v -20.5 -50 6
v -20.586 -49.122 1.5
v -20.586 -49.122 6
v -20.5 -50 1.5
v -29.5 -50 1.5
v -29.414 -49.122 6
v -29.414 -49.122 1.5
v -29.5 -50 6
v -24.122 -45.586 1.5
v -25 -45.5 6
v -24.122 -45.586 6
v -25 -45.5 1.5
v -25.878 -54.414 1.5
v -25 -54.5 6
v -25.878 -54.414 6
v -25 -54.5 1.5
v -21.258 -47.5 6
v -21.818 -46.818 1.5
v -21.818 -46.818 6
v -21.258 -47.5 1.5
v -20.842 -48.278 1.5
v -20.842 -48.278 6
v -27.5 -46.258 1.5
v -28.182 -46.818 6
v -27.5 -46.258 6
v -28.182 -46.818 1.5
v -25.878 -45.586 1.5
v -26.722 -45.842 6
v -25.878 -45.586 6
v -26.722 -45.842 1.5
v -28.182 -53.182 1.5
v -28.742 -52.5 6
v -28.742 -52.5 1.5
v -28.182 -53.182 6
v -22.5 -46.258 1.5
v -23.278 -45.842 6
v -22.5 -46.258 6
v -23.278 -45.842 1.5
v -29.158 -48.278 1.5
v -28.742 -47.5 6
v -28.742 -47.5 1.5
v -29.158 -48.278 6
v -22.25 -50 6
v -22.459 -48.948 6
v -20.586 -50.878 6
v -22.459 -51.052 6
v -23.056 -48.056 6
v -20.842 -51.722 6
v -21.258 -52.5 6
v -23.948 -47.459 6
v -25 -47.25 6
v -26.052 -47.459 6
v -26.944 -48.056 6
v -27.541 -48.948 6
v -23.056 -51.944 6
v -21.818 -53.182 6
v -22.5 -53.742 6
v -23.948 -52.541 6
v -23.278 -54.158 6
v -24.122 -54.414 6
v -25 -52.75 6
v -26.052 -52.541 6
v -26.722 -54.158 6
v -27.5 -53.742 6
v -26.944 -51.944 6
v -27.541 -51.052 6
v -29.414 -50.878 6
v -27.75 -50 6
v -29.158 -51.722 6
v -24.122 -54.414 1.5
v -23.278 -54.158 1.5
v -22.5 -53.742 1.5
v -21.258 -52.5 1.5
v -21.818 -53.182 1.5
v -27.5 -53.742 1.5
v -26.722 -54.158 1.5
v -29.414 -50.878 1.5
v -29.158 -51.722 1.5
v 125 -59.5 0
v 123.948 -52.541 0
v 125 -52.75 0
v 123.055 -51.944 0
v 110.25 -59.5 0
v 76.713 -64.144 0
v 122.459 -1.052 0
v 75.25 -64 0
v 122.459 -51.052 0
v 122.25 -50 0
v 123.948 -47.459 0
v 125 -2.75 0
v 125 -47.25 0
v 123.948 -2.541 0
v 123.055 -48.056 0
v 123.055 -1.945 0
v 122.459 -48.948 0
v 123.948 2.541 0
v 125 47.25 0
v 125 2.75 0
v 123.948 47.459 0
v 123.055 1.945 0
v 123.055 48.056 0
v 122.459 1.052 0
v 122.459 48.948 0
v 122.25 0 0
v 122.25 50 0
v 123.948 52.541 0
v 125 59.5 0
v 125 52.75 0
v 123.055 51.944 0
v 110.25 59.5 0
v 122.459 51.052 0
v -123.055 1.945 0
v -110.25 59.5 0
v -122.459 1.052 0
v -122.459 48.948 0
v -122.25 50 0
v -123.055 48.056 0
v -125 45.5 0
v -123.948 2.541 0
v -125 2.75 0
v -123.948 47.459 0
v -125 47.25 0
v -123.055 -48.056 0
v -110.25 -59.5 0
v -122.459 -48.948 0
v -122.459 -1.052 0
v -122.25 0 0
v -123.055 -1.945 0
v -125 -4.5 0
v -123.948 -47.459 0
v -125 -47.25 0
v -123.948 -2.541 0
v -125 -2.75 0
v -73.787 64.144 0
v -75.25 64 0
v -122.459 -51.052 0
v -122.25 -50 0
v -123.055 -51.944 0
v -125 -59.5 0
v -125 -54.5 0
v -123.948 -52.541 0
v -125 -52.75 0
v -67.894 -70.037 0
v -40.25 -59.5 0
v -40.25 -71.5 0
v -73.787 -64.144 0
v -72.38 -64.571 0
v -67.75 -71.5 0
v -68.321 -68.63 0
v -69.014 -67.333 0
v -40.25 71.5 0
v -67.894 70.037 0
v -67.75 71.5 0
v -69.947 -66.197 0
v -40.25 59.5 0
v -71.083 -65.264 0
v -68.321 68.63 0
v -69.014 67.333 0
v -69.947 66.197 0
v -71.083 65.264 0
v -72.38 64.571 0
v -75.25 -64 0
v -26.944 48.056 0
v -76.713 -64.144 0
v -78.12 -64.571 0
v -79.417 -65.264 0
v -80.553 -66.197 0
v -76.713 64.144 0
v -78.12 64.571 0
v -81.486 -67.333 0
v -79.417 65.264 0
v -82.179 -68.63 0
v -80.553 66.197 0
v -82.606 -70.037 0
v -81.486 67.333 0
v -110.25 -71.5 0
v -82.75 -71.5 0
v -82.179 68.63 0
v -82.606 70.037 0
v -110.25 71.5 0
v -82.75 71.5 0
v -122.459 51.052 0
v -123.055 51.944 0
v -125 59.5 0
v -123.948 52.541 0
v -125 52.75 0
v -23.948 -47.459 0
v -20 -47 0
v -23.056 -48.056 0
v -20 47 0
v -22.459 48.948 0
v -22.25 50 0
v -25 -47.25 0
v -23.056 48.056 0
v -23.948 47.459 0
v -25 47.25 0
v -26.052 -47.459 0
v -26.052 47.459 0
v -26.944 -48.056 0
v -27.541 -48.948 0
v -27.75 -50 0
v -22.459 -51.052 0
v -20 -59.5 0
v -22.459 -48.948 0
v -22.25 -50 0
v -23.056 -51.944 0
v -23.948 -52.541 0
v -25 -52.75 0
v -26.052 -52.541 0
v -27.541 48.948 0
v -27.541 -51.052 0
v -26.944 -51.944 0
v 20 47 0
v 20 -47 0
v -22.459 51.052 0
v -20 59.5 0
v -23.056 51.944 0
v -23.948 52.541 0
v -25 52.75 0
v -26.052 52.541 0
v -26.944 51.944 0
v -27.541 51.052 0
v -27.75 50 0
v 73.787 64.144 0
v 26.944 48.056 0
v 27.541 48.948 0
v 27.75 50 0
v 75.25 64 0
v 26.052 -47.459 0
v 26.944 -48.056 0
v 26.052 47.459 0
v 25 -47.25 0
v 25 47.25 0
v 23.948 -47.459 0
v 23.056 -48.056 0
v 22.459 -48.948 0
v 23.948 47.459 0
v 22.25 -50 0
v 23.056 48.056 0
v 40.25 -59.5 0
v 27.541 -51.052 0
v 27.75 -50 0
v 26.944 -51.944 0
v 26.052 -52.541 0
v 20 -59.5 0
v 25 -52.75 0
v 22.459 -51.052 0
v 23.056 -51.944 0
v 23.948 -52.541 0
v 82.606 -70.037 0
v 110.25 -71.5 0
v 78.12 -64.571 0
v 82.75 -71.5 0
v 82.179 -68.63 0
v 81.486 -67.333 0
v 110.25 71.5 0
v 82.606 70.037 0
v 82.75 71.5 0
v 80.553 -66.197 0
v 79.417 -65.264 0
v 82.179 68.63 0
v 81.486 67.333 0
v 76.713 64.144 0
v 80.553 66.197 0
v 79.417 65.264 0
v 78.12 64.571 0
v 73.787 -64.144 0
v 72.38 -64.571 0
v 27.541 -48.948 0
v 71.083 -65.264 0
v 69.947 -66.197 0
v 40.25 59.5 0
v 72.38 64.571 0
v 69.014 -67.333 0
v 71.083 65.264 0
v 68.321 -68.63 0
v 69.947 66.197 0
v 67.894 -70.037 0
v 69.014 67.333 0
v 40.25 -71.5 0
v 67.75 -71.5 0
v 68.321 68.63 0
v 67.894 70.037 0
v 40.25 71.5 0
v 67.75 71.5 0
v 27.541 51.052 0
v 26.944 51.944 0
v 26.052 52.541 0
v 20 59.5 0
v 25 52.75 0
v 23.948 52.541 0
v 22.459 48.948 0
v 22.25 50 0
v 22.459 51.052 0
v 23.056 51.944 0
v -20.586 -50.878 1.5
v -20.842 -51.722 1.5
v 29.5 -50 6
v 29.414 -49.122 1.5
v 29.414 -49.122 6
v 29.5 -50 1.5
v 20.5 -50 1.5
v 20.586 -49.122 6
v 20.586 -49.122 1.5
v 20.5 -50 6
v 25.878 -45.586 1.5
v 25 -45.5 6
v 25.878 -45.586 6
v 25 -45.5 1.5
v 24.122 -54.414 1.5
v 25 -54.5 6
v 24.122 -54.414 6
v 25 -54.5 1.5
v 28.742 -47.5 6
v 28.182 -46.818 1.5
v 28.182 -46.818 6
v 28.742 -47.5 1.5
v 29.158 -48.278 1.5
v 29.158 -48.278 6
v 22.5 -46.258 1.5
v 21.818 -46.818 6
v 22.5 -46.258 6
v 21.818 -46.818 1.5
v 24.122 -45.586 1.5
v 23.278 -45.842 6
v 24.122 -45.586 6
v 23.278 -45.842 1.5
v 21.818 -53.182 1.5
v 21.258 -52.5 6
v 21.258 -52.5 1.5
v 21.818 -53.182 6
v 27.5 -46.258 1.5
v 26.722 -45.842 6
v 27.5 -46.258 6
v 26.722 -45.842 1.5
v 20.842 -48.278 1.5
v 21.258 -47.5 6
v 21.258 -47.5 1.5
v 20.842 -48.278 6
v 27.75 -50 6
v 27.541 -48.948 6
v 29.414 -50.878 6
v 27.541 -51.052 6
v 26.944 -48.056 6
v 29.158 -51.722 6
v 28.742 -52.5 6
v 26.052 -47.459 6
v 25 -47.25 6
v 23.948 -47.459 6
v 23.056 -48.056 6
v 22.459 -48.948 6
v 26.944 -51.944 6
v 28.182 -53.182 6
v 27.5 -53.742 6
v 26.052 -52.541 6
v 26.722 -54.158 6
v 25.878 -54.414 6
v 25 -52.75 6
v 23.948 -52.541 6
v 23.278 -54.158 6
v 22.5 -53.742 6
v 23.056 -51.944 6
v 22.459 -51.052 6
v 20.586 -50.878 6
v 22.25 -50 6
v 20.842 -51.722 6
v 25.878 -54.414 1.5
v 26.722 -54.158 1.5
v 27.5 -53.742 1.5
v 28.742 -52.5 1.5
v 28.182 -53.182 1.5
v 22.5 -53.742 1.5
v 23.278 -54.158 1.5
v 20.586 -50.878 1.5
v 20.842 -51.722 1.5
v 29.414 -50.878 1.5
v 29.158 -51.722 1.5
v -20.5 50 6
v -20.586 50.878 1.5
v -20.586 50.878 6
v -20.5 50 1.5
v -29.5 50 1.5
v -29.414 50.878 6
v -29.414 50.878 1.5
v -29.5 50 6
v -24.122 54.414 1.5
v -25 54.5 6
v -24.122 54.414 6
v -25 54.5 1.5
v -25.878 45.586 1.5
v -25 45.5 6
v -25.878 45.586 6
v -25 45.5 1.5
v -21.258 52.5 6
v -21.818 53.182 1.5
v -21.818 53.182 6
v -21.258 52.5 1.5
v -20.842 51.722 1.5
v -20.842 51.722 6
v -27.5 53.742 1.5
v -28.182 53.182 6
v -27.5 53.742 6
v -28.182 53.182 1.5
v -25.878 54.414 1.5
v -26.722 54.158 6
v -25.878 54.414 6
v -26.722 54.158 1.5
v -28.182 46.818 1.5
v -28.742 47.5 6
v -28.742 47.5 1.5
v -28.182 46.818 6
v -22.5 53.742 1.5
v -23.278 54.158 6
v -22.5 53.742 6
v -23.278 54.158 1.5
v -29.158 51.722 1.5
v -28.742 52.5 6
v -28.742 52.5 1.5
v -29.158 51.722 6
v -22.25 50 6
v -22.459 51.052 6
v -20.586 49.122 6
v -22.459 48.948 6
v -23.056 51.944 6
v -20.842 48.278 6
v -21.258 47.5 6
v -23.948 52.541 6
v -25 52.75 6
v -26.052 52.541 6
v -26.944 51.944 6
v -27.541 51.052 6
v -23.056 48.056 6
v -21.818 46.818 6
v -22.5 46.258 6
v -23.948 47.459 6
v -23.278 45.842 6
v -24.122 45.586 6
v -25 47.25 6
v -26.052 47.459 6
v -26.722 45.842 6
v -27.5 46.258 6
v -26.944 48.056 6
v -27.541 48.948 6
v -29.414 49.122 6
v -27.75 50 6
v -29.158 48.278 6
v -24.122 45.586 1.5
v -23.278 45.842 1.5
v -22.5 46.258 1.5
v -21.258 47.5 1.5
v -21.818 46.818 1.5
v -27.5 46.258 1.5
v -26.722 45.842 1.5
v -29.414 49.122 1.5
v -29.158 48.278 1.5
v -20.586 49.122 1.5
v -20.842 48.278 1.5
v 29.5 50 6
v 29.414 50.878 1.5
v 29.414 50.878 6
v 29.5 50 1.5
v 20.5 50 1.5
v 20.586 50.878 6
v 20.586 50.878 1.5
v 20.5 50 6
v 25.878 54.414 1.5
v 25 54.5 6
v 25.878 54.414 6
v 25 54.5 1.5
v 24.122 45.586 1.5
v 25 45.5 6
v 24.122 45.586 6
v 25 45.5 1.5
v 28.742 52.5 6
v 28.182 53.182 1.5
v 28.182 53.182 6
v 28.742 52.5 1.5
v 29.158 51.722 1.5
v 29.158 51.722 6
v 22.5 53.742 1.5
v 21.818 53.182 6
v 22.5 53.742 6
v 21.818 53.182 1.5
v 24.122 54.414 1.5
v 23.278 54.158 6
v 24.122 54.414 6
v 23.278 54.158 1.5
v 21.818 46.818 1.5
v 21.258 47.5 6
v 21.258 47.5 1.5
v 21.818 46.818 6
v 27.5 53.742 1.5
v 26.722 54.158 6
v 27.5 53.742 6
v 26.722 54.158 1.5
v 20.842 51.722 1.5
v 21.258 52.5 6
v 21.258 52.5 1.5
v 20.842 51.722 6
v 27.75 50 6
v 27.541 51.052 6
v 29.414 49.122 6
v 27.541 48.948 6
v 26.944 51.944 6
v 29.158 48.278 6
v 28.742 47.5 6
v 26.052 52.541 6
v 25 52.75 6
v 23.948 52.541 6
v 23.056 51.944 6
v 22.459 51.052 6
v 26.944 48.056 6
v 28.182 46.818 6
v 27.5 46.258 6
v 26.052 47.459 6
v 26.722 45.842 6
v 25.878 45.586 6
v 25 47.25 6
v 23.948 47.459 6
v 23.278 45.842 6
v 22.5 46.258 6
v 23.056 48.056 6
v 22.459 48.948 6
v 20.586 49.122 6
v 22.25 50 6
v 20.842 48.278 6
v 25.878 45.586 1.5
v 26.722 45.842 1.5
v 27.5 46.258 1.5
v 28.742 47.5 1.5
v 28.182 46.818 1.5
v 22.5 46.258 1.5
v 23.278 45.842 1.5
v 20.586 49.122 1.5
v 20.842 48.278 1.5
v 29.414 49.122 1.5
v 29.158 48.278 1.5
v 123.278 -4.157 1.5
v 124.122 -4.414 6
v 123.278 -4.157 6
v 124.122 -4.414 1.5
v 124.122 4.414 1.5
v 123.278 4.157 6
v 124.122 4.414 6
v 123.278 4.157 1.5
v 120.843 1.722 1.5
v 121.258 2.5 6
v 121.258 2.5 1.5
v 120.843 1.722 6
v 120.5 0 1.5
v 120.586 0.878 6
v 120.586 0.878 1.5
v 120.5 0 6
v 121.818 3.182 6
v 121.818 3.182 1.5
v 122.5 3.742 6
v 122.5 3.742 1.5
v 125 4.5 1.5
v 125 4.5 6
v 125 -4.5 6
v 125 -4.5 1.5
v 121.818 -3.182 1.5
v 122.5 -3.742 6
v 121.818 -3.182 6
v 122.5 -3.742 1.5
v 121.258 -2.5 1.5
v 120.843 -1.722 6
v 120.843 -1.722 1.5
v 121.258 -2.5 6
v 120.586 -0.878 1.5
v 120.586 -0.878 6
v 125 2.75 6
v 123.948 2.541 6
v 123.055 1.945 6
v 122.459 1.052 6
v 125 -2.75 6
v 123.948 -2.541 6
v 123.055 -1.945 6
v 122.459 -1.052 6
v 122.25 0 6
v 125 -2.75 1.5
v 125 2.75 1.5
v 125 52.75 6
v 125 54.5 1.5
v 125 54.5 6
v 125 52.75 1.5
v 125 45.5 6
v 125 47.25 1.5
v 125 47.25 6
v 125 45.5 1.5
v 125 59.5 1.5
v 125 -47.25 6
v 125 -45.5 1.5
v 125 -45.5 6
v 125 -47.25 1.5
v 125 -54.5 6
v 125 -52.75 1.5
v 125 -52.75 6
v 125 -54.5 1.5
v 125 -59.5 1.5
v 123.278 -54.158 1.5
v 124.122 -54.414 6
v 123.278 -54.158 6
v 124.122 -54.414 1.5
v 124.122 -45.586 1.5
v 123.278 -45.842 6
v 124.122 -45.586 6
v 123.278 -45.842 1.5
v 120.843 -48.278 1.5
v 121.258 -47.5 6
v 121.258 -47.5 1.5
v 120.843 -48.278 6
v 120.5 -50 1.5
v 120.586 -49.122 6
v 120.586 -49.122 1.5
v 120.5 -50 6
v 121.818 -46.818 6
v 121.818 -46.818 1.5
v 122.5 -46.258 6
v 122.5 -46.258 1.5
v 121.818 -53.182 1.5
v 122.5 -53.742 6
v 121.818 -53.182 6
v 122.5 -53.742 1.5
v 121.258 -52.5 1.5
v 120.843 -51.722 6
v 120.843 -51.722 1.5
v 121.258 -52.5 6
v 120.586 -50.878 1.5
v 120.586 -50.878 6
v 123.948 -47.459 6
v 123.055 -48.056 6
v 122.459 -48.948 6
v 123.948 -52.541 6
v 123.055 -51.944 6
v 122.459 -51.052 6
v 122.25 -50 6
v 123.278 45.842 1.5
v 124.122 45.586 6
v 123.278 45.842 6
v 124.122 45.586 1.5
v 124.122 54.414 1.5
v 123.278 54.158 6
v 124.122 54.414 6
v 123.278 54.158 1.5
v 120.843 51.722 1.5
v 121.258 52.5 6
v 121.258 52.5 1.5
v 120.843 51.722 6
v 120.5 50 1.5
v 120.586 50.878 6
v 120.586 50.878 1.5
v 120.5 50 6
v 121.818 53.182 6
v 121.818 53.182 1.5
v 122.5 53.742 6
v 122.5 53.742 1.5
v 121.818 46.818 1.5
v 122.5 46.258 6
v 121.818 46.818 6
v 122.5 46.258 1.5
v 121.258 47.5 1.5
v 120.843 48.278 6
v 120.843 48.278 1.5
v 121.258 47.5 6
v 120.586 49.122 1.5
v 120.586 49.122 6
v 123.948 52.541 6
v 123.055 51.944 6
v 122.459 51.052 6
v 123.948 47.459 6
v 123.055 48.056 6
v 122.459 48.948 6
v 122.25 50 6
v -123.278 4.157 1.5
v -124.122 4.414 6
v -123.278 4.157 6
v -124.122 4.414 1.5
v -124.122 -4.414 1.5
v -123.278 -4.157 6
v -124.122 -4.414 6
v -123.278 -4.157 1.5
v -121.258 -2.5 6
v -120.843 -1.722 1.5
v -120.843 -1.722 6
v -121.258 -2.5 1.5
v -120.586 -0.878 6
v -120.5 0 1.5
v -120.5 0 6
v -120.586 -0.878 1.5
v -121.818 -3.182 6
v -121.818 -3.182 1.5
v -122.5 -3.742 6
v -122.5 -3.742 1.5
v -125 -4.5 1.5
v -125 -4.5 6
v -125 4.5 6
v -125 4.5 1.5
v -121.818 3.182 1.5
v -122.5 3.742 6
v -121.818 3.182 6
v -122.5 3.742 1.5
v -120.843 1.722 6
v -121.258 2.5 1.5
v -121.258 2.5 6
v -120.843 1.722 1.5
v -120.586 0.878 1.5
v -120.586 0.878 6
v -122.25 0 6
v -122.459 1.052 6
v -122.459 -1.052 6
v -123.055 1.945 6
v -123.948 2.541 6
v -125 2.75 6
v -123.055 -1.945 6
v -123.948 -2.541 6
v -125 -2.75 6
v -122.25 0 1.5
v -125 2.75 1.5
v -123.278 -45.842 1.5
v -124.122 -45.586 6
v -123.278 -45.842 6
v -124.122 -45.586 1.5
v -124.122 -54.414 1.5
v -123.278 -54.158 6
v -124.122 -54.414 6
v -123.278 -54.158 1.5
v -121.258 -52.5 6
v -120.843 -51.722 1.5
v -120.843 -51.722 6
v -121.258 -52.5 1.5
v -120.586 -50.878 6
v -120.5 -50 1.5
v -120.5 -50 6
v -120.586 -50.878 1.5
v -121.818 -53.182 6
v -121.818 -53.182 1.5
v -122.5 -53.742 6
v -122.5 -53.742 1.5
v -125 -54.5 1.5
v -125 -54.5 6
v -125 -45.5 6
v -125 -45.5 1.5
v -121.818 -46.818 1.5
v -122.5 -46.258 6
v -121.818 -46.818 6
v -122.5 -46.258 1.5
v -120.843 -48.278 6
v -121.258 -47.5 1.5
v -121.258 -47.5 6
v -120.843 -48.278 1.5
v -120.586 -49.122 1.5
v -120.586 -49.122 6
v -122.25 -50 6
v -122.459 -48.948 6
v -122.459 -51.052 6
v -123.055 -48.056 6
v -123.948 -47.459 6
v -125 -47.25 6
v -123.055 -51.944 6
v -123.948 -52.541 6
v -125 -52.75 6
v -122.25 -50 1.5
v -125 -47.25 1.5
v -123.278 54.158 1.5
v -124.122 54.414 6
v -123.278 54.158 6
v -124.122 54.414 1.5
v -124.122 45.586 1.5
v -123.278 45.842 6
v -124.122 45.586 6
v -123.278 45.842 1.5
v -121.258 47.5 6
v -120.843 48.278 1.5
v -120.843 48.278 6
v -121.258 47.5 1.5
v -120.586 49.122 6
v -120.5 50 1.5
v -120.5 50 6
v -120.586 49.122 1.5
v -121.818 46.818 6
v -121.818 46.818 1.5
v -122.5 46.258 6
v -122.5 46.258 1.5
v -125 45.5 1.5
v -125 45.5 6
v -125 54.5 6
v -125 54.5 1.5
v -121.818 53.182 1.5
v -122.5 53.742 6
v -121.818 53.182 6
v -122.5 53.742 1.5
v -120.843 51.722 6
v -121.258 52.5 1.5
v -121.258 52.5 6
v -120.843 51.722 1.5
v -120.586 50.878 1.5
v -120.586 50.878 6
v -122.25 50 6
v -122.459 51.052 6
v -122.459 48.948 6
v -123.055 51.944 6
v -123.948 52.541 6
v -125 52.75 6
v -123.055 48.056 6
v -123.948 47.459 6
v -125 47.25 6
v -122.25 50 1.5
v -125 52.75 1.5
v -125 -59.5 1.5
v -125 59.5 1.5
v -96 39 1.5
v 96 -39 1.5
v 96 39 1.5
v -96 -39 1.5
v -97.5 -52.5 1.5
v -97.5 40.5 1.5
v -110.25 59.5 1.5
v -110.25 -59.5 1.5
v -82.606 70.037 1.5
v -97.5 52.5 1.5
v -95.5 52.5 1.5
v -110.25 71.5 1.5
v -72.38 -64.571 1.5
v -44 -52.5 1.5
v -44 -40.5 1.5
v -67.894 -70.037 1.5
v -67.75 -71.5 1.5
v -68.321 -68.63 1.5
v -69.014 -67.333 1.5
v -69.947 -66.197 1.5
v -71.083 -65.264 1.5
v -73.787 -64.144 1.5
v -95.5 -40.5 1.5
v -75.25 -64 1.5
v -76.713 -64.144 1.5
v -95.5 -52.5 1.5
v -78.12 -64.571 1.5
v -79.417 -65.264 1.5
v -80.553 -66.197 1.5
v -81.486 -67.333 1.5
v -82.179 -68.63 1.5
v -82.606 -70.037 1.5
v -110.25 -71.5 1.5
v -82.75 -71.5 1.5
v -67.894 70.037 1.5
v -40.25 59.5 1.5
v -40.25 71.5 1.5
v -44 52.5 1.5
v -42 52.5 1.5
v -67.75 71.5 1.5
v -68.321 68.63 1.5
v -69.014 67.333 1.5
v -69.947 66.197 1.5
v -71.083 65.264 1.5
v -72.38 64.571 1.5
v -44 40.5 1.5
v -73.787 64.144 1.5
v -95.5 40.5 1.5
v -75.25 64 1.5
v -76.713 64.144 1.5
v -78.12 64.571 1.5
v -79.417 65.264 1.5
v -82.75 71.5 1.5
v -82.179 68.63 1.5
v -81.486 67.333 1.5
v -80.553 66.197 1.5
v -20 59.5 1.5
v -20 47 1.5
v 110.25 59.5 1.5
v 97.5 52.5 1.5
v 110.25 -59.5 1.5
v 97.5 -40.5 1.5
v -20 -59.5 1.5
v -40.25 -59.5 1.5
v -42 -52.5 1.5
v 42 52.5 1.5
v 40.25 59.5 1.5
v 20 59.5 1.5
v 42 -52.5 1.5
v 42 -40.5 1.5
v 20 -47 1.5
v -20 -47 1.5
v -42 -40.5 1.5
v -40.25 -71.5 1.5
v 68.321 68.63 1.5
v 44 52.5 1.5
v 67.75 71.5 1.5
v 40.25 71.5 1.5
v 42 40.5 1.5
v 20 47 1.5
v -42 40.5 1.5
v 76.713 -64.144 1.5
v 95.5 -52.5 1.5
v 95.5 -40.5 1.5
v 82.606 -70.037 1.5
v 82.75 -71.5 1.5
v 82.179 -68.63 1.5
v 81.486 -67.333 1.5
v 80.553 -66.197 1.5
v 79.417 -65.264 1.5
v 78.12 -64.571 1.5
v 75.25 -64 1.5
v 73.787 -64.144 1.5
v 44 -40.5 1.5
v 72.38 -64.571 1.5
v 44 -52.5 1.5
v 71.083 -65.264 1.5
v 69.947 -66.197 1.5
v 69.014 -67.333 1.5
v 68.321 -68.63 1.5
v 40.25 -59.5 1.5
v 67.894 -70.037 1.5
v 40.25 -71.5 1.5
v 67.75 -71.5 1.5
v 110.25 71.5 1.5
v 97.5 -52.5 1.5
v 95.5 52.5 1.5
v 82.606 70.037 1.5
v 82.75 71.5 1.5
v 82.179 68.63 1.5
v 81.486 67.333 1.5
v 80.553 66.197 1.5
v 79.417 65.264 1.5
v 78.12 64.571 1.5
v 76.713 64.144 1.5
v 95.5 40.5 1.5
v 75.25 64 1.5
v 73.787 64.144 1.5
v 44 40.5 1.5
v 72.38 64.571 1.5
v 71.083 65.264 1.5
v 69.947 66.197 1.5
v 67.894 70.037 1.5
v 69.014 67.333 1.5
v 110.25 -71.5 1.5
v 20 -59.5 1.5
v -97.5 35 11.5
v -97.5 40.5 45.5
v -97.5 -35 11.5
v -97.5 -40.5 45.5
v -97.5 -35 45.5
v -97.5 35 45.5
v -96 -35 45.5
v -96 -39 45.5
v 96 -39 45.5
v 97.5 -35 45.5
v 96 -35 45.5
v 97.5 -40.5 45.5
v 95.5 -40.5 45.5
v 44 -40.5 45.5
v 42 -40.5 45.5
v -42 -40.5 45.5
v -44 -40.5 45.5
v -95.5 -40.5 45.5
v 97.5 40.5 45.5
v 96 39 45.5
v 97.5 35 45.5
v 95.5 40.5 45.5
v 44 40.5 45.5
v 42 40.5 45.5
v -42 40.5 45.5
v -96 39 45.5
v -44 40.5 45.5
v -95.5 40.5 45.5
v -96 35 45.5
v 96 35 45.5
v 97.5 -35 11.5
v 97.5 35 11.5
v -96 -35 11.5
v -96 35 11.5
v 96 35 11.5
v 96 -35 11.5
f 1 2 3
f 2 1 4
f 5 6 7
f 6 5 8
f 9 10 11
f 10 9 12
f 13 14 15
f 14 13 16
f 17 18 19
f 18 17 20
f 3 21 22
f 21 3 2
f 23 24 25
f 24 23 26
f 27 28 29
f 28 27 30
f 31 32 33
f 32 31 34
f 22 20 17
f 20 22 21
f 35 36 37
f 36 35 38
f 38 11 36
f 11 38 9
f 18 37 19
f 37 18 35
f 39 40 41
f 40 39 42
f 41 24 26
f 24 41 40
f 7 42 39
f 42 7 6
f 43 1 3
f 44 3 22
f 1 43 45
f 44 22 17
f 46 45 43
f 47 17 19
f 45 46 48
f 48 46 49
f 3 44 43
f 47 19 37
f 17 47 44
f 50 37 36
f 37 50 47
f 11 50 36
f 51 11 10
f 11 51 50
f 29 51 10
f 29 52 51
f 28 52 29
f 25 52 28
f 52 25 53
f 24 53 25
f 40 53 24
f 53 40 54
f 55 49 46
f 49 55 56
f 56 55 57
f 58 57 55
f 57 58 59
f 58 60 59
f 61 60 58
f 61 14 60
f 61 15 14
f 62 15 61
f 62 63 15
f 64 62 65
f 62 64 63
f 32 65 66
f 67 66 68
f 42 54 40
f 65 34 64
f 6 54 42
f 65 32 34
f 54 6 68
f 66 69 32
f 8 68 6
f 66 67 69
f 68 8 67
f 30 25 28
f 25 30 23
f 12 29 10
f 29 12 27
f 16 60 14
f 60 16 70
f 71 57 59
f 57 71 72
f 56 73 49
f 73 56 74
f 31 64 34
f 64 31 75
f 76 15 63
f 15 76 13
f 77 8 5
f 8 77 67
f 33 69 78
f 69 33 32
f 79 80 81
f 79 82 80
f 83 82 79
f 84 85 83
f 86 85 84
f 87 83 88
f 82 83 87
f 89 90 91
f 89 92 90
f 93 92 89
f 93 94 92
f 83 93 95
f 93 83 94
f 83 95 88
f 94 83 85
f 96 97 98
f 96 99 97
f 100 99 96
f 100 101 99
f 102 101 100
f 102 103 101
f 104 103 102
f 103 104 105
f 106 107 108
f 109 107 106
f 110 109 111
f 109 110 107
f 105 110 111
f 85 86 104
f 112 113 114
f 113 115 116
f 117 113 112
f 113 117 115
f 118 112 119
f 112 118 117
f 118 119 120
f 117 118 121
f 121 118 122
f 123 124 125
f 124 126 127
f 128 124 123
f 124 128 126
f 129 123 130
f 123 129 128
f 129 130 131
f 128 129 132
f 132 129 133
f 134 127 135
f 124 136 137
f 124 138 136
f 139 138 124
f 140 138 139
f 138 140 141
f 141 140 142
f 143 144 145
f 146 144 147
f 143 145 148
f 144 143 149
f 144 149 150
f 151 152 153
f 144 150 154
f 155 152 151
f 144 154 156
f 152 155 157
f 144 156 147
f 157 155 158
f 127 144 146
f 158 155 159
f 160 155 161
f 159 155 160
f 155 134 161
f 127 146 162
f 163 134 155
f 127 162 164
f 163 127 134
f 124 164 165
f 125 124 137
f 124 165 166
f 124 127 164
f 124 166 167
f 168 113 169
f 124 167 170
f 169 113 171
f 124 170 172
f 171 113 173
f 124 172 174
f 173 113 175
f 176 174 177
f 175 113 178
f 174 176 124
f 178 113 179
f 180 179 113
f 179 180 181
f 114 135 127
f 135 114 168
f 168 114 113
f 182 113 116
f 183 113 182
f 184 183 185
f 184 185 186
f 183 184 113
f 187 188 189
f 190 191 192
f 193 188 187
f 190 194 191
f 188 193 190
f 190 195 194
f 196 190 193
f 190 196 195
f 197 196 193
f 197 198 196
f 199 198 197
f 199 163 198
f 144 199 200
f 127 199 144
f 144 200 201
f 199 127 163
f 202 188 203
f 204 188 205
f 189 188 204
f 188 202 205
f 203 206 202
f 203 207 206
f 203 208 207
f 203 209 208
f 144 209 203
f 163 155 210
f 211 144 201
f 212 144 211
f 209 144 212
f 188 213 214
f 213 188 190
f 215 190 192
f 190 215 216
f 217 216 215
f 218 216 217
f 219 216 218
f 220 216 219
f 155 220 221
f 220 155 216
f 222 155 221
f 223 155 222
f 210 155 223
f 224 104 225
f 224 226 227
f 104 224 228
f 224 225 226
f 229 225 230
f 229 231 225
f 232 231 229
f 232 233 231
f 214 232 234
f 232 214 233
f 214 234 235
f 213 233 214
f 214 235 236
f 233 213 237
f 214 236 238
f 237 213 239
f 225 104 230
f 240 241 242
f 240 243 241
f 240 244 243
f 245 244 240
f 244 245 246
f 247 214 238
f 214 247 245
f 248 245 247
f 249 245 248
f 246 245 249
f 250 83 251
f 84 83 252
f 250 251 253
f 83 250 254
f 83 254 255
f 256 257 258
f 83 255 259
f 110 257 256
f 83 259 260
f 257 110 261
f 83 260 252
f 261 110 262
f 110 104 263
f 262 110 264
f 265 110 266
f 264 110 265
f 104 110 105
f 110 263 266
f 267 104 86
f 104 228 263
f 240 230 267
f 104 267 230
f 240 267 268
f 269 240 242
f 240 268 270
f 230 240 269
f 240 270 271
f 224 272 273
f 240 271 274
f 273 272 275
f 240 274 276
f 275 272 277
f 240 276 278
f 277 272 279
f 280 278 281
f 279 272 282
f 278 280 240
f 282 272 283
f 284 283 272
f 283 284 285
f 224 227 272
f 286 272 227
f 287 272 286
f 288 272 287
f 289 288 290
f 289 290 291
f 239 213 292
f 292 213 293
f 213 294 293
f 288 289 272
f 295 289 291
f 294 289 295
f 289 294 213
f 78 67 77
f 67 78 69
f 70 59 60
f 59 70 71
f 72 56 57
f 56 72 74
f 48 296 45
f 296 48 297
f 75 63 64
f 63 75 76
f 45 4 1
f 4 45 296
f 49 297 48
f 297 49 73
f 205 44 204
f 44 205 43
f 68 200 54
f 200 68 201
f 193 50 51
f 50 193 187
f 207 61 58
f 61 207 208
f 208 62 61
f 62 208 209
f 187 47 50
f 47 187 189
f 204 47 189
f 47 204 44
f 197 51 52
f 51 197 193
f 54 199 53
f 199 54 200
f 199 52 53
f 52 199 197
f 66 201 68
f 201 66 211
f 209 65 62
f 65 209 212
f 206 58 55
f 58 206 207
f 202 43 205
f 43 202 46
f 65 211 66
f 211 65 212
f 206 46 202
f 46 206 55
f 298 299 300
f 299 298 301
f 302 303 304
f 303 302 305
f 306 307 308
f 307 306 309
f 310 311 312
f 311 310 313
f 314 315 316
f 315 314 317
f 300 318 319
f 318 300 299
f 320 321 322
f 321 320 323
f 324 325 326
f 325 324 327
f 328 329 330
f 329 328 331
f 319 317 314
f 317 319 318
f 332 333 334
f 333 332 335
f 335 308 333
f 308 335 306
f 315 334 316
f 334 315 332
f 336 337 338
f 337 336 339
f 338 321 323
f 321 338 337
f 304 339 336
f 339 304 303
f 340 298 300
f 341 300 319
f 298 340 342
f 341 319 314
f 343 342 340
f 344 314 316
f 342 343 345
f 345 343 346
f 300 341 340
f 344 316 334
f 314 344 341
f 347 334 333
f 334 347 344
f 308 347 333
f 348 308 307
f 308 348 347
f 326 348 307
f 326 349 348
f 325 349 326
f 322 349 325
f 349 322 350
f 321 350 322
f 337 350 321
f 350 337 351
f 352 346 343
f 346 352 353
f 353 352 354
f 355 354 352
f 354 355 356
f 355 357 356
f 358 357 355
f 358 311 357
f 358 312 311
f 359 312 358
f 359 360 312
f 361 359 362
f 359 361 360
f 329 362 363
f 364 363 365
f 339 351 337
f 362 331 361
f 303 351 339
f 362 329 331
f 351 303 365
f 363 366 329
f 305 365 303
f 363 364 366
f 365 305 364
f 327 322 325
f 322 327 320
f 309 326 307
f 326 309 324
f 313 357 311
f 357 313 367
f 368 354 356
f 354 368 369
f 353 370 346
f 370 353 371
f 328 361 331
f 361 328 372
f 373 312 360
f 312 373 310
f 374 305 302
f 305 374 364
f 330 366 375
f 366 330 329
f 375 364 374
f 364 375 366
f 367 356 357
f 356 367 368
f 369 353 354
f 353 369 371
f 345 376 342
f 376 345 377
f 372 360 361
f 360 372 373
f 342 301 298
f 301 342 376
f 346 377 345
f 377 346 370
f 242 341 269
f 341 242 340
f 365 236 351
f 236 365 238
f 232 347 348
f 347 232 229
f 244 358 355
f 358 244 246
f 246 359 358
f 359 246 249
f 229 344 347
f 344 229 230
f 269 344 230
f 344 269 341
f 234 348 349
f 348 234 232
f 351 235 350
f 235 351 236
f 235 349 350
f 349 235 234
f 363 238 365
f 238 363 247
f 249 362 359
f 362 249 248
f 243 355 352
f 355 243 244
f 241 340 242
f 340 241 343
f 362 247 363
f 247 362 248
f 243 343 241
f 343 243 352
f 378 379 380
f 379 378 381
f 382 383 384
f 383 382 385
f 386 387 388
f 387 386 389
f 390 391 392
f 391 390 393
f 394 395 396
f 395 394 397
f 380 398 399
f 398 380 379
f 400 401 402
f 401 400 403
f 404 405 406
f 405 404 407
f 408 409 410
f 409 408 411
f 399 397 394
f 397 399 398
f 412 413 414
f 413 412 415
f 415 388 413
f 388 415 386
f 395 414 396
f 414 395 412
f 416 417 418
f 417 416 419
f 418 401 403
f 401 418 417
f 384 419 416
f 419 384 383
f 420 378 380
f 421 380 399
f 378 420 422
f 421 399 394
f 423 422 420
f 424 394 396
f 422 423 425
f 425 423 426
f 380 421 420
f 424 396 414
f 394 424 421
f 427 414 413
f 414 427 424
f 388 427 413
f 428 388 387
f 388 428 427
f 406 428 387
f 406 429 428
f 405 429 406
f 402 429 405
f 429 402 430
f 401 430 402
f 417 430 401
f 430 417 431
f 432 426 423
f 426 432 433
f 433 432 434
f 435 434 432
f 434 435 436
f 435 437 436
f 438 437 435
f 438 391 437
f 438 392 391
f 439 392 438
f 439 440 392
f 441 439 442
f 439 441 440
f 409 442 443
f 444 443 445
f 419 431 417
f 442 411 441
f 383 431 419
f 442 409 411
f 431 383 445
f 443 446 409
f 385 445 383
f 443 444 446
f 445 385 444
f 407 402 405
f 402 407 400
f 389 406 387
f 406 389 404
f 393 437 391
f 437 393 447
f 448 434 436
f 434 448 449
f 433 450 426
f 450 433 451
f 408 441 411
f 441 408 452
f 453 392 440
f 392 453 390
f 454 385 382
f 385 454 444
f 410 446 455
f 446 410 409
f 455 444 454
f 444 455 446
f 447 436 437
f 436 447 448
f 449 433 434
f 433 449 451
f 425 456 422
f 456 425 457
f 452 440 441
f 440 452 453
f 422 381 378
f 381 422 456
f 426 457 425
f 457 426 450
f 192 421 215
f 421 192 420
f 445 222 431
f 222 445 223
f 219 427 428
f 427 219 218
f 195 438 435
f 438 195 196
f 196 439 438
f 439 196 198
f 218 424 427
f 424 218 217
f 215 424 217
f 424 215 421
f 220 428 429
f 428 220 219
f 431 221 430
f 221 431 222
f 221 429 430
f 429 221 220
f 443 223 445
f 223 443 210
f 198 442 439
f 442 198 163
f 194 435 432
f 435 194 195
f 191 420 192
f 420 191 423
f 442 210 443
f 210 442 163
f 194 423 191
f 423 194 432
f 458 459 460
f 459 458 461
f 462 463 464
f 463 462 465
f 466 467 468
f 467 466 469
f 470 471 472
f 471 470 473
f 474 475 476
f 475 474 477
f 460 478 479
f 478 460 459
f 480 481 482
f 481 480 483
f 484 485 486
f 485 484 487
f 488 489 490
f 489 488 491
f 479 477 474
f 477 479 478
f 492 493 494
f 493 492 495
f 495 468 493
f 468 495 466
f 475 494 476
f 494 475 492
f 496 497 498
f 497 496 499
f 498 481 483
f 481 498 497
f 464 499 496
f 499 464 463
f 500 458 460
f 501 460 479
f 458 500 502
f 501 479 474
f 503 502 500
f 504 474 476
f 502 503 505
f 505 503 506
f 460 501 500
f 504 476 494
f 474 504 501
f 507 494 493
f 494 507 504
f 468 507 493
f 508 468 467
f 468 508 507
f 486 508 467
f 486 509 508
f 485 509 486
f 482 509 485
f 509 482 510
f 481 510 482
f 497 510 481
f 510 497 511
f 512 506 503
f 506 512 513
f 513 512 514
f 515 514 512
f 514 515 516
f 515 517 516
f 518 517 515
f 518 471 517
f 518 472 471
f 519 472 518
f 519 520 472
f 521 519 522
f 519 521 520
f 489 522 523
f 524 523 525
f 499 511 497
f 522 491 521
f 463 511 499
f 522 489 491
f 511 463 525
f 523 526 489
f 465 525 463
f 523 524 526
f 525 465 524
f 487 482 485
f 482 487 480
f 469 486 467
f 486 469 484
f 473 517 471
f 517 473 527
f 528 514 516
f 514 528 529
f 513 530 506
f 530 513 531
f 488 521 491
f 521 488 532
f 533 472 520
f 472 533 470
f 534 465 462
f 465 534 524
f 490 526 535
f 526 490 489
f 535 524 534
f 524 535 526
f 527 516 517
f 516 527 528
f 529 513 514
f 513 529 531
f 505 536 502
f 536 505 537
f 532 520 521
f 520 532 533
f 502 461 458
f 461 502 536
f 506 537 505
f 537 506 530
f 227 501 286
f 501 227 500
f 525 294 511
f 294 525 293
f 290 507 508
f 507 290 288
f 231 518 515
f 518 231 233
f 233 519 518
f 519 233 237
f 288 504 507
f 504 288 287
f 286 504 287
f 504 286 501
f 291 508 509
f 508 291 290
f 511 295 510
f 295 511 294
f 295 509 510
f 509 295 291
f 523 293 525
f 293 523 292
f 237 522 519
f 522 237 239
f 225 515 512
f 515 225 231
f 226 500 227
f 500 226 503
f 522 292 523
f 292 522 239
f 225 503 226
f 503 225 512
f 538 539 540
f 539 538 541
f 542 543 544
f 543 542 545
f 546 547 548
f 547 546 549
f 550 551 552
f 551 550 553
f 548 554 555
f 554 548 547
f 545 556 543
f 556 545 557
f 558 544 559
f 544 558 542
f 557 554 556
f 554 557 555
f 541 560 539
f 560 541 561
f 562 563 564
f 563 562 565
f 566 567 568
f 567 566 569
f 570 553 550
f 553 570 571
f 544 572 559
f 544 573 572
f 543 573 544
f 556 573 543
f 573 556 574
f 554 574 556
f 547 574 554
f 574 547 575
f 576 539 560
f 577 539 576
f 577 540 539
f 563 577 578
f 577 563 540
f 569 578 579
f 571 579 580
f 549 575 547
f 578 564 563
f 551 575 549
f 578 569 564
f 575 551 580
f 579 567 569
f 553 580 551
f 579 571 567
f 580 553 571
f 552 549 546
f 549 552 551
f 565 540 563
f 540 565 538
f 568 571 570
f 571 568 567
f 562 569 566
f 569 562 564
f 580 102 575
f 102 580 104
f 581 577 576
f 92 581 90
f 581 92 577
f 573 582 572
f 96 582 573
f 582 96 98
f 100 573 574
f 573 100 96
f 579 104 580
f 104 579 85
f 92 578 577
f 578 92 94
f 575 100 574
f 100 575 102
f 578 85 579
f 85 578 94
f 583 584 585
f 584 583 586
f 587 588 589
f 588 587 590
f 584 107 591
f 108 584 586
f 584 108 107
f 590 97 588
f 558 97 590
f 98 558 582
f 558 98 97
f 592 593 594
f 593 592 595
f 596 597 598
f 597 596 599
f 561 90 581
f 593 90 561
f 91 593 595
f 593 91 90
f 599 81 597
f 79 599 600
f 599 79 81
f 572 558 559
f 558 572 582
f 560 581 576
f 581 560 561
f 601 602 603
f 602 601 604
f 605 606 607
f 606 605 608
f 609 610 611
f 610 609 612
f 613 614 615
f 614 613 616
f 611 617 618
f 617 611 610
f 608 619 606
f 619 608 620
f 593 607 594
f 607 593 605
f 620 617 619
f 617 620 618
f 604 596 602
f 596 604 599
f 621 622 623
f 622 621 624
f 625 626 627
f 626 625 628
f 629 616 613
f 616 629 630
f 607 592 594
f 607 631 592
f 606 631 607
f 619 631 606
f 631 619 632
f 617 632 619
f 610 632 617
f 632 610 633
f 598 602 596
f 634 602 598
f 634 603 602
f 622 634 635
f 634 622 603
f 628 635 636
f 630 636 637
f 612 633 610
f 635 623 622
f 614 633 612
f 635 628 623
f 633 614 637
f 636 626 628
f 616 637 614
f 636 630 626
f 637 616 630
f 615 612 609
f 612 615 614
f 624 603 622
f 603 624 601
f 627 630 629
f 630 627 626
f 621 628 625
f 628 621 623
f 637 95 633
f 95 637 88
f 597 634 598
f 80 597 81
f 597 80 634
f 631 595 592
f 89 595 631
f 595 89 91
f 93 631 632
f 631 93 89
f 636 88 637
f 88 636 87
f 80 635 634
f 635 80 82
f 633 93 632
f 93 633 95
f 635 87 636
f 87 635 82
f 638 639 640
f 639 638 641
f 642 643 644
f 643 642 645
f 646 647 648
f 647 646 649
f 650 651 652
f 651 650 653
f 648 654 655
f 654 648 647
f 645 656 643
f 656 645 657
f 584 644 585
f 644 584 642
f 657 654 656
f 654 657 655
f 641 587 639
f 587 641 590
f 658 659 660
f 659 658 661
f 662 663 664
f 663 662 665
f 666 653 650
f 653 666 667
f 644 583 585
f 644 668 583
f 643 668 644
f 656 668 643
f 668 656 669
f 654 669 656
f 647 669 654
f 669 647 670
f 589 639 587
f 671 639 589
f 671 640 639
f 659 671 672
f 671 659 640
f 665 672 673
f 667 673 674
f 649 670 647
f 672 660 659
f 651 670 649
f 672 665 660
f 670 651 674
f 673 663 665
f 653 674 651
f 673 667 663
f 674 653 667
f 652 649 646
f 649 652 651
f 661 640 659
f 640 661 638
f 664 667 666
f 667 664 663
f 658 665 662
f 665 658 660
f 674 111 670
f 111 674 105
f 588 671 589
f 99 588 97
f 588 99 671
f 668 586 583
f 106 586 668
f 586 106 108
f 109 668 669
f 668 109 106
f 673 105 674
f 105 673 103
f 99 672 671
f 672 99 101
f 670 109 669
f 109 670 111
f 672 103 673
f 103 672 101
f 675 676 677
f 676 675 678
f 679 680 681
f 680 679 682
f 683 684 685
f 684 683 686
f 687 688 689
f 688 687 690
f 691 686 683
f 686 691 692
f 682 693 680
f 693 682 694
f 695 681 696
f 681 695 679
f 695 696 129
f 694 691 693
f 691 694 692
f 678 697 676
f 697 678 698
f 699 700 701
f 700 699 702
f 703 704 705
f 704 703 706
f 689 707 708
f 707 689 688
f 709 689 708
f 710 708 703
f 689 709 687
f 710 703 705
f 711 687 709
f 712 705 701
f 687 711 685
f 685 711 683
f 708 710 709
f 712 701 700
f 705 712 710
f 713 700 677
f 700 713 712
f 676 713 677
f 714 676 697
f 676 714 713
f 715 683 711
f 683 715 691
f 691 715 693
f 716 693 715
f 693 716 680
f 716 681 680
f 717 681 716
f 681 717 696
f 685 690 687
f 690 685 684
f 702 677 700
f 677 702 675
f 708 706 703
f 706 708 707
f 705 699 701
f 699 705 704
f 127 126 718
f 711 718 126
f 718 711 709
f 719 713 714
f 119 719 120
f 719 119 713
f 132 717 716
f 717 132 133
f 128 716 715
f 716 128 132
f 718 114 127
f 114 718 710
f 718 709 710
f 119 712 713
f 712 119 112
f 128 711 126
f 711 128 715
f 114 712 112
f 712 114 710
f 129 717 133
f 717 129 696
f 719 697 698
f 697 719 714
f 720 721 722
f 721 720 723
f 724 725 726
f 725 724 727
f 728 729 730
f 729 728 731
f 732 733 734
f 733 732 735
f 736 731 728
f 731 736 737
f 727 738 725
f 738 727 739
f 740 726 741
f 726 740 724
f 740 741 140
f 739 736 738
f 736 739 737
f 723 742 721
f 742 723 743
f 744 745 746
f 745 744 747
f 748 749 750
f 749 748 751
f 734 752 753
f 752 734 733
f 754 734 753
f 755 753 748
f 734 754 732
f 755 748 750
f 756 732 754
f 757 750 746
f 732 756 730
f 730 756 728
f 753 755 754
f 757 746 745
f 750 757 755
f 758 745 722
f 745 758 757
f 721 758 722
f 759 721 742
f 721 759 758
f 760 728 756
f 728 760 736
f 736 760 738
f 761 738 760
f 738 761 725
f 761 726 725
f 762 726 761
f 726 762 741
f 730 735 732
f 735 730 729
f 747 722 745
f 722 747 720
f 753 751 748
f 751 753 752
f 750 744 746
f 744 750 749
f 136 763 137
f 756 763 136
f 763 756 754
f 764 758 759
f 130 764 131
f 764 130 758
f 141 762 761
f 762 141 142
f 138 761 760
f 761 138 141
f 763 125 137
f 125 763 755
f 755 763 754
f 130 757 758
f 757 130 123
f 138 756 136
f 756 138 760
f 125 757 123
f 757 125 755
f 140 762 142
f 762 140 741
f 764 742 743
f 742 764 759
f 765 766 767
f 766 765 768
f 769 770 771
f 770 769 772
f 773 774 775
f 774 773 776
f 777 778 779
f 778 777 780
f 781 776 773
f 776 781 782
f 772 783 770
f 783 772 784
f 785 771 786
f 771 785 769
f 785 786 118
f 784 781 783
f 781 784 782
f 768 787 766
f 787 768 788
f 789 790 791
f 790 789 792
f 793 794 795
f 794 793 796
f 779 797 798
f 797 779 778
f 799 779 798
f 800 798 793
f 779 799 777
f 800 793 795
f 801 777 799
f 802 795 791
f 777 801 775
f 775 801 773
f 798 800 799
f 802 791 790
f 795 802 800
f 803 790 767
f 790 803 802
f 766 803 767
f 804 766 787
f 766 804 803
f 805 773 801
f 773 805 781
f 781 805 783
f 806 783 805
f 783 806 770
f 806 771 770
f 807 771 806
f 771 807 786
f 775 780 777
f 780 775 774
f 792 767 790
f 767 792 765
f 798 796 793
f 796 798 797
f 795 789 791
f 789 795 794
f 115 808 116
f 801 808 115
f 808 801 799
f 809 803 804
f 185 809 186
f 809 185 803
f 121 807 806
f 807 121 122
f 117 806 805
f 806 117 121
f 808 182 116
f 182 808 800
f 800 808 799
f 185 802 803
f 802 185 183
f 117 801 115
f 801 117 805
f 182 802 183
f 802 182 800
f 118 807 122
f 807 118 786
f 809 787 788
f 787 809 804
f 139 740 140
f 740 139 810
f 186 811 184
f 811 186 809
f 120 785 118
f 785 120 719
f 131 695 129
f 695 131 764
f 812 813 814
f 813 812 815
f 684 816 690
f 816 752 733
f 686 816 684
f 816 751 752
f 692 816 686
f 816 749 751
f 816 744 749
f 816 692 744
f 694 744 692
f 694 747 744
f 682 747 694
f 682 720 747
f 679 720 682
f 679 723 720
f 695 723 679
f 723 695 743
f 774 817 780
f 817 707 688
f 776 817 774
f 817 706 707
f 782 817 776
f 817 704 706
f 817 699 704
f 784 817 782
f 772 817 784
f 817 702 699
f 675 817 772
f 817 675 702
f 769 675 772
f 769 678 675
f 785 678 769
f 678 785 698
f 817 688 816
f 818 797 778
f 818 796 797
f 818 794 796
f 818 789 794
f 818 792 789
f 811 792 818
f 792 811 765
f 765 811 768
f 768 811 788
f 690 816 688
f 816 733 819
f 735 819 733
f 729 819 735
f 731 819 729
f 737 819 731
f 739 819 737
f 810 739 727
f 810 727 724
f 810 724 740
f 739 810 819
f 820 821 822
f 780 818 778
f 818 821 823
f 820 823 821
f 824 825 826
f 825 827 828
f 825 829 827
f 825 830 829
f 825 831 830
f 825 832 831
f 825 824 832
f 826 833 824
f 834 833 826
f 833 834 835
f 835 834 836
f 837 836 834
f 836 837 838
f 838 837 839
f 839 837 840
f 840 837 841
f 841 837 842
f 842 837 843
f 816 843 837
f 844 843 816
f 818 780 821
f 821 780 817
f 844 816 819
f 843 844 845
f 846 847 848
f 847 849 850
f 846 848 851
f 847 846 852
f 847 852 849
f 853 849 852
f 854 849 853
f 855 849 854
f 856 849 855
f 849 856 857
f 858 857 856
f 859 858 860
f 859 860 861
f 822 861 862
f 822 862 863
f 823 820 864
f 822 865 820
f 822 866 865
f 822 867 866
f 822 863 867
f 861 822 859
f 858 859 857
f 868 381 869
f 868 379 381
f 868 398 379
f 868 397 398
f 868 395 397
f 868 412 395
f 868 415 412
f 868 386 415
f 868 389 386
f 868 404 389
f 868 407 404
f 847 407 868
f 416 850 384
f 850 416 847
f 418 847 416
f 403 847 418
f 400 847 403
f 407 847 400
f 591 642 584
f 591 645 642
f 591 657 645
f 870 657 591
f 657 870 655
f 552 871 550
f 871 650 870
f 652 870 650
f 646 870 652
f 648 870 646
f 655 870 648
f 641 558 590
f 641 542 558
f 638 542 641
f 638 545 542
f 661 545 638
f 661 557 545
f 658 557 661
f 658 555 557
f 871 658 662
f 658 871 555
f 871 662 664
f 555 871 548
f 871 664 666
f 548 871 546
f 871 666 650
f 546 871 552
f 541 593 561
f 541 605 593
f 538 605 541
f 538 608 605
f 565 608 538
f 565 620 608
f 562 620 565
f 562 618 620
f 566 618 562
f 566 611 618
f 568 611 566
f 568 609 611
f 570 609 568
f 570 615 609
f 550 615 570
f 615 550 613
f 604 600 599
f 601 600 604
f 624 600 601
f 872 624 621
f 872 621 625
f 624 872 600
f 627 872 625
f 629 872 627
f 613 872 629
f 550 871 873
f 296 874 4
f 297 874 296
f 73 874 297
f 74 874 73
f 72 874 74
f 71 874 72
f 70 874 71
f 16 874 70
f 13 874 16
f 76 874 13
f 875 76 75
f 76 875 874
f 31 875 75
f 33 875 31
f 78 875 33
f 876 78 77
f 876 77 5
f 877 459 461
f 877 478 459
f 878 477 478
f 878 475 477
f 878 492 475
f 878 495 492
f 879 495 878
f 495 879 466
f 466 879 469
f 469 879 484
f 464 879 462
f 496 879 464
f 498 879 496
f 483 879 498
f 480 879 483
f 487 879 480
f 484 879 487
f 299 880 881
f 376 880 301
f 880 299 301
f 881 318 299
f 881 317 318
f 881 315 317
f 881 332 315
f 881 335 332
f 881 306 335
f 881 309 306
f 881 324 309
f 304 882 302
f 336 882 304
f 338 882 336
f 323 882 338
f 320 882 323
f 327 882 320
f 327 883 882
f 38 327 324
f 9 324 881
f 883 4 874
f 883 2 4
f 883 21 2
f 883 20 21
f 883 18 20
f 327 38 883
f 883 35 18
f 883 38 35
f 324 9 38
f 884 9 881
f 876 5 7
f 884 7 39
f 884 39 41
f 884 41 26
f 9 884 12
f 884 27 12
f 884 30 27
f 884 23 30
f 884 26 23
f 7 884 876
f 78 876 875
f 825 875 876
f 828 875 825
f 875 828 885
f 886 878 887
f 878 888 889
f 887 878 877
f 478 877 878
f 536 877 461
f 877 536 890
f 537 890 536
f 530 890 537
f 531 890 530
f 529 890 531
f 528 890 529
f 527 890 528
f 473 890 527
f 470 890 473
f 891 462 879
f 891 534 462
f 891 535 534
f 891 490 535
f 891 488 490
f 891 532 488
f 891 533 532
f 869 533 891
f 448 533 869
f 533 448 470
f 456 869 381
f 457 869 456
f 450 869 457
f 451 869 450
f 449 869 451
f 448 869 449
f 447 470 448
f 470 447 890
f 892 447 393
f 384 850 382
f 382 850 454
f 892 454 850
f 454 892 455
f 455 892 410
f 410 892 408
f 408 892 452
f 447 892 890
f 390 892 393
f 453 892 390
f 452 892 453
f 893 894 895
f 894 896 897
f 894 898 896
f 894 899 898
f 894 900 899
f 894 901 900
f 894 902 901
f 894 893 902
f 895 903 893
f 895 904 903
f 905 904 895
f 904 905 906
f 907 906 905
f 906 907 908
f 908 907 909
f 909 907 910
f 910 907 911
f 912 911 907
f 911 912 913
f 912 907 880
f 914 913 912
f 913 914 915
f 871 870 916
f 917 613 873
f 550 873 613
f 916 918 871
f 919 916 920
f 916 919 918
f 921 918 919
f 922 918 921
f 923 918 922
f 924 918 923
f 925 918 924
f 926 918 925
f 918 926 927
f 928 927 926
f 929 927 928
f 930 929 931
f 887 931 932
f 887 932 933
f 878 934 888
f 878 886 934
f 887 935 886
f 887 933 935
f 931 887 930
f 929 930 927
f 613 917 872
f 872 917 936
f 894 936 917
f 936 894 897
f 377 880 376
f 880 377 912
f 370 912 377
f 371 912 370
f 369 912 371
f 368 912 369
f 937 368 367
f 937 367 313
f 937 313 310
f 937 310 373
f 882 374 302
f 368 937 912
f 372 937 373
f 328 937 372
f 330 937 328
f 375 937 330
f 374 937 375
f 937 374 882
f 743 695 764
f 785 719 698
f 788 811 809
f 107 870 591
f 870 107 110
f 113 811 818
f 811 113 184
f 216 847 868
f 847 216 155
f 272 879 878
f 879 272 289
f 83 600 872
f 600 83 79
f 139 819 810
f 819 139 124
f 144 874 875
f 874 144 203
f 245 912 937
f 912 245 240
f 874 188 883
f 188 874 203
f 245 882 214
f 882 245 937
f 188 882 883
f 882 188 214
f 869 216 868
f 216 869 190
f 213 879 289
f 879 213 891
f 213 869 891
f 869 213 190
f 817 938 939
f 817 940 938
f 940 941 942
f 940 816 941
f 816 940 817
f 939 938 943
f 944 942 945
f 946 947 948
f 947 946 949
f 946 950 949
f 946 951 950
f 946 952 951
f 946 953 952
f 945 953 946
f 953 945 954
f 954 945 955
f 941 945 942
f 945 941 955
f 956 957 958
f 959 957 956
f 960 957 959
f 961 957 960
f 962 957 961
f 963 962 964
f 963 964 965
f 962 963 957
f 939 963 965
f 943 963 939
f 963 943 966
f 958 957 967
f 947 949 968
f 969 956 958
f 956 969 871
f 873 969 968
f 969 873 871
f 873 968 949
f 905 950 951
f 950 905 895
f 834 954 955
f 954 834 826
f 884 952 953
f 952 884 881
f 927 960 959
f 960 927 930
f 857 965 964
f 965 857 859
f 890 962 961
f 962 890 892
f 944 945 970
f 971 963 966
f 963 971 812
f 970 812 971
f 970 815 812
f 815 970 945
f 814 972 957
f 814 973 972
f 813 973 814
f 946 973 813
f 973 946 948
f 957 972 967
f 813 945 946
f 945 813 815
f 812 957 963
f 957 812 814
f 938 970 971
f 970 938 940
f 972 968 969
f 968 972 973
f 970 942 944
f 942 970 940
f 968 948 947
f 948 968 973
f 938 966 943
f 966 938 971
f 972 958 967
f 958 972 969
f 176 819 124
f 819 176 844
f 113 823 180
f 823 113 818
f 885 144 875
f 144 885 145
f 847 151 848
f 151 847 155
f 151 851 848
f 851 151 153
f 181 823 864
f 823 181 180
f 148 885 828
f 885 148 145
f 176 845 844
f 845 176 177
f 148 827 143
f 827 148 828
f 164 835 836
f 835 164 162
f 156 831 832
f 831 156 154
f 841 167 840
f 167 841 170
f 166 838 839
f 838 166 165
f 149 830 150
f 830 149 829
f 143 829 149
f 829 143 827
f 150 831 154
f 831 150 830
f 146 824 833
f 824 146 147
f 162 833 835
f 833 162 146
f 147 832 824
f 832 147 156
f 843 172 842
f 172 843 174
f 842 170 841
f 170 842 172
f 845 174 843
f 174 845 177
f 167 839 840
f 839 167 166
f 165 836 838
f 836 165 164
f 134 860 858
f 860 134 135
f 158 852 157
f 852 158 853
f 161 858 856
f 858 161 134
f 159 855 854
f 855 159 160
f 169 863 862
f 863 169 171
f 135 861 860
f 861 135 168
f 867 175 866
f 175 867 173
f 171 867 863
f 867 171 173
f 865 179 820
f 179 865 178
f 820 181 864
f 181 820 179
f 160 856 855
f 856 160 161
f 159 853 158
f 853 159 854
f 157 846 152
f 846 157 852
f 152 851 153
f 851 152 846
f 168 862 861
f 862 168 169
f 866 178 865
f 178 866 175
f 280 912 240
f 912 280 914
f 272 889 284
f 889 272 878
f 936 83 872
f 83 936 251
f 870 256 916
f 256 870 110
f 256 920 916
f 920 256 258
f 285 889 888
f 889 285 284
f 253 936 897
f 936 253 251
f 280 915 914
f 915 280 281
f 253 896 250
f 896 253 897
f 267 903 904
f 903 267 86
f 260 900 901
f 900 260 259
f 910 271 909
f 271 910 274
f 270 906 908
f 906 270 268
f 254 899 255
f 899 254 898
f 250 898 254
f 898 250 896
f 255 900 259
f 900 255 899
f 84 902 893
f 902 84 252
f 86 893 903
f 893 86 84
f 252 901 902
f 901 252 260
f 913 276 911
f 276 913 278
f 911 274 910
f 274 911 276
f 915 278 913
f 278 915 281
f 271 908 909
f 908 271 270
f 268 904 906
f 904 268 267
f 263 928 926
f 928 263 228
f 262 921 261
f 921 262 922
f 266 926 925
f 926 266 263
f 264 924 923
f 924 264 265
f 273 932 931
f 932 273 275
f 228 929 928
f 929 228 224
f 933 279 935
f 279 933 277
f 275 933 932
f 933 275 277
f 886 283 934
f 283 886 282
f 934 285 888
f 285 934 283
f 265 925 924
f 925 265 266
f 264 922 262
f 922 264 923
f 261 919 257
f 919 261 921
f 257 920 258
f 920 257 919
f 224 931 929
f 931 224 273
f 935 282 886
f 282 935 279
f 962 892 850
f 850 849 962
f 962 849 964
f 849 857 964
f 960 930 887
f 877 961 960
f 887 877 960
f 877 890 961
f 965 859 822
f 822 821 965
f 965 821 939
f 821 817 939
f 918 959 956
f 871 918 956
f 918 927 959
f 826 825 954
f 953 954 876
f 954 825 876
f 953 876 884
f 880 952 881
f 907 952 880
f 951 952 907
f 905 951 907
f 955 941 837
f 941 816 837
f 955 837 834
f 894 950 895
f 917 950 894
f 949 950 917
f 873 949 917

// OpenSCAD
difference() {
    translate([-250/2,-119/2,0])
    cube([250,119,1.5]);
    
    translate([0,-119/2,0])
    translate([-40/2,-25/2,0])
    cube([40,25,3]);

    translate([0,119/2,0])
    translate([-40/2,-25/2,0])
    cube([40,25,3]);
    
    translate([-25,-50,0])
cylinder(d=5.5,h=5,$fn=16);
translate([25,-50,0])
cylinder(d=5.5,h=5,$fn=16);
    translate([-25,50,0])
cylinder(d=5.5,h=5,$fn=16);
    translate([25,50,0])
cylinder(d=5.5,h=5,$fn=16);
    
    translate([250/2,0,0])
cylinder(d=5.5,h=5,$fn=16);
translate([250/2,-50,0])
cylinder(d=5.5,h=5,$fn=16);
translate([250/2,50,0])
cylinder(d=5.5,h=5,$fn=16);
translate([-250/2,0,0])
cylinder(d=5.5,h=5,$fn=16);
translate([-250/2,-50,0])
cylinder(d=5.5,h=5,$fn=16);
translate([-250/2,50,0])
cylinder(d=5.5,h=5,$fn=16);
    }

translate([-80.5/2,0,0])
translate([-70,-143/2,0])
difference() {
    cube([70,143,1.5]);
    translate([70/2,0,0])
    cylinder(d=15,h=5,$fn=32);
    translate([70/2,143,0])
    cylinder(d=15,h=5,$fn=32);
}

translate([80.5/2,0,0])
translate([0,-143/2,0])
difference() {
    cube([70,143,1.5]);
    translate([70/2,0,0])
    cylinder(d=15,h=5,$fn=32);
    translate([70/2,143,0])
    cylinder(d=15,h=5,$fn=32);
}

translate([0,0,1.5])
difference() {
    translate([-195/2,-81/2])
    cube([195,81,44]);
    translate([-192/2,-78/2])
    cube([192,78,44]);
    translate([-200/2,-70/2,10])
    cube([200,70,44]);
}

    translate([-25,-50,0])
standoff();
translate([25,-50,0])
standoff();
translate([-25,50,0])
standoff();    translate([25,50,0])
standoff();

translate([250/2,0,0])
halfstandoff();
translate([250/2,-50,0])
halfstandoff();
translate([250/2,50,0])
halfstandoff();

translate([-250/2,0,0])
rotate([0,0,180])
halfstandoff();
translate([-250/2,-50,0])
rotate([0,0,180])
halfstandoff();
translate([-250/2,50,0])
rotate([0,0,180])
halfstandoff();

translate([-85/2-0.5,81/2,1.5])
support();
translate([85/2+0.5,81/2,1.5])
support();
translate([-192/2-0.5,81/2,1.5])
support();
translate([192/2+0.5,81/2,1.5])
support();
translate([-85/2-0.5,-81/2,1.5])
rotate([0,0,180])
support();
translate([85/2+0.5,-81/2,1.5])
rotate([0,0,180])
support();
translate([-192/2-0.5,-81/2,1.5])
rotate([0,0,180])
support();
translate([192/2+0.5,-81/2,1.5])
rotate([0,0,180])
support();

module support() {
rotate([0,-90,0])
linear_extrude(height = 2, center = true, convexity = 10, twist = 0)
polygon(points=[[0,0],[44,0],[0,12]]);
}

module standoff() {
    difference() {
    cylinder(d=9,h=6,$fn=32);
    cylinder(d=5.5,h=6,$fn=16);
    }
}

module halfstandoff() {
    difference() {
    cylinder(d=9,h=6,$fn=32);
    cylinder(d=5.5,h=6,$fn=16);
    translate([0,-5,0])
    cube([10,10,10]);
    }
}
